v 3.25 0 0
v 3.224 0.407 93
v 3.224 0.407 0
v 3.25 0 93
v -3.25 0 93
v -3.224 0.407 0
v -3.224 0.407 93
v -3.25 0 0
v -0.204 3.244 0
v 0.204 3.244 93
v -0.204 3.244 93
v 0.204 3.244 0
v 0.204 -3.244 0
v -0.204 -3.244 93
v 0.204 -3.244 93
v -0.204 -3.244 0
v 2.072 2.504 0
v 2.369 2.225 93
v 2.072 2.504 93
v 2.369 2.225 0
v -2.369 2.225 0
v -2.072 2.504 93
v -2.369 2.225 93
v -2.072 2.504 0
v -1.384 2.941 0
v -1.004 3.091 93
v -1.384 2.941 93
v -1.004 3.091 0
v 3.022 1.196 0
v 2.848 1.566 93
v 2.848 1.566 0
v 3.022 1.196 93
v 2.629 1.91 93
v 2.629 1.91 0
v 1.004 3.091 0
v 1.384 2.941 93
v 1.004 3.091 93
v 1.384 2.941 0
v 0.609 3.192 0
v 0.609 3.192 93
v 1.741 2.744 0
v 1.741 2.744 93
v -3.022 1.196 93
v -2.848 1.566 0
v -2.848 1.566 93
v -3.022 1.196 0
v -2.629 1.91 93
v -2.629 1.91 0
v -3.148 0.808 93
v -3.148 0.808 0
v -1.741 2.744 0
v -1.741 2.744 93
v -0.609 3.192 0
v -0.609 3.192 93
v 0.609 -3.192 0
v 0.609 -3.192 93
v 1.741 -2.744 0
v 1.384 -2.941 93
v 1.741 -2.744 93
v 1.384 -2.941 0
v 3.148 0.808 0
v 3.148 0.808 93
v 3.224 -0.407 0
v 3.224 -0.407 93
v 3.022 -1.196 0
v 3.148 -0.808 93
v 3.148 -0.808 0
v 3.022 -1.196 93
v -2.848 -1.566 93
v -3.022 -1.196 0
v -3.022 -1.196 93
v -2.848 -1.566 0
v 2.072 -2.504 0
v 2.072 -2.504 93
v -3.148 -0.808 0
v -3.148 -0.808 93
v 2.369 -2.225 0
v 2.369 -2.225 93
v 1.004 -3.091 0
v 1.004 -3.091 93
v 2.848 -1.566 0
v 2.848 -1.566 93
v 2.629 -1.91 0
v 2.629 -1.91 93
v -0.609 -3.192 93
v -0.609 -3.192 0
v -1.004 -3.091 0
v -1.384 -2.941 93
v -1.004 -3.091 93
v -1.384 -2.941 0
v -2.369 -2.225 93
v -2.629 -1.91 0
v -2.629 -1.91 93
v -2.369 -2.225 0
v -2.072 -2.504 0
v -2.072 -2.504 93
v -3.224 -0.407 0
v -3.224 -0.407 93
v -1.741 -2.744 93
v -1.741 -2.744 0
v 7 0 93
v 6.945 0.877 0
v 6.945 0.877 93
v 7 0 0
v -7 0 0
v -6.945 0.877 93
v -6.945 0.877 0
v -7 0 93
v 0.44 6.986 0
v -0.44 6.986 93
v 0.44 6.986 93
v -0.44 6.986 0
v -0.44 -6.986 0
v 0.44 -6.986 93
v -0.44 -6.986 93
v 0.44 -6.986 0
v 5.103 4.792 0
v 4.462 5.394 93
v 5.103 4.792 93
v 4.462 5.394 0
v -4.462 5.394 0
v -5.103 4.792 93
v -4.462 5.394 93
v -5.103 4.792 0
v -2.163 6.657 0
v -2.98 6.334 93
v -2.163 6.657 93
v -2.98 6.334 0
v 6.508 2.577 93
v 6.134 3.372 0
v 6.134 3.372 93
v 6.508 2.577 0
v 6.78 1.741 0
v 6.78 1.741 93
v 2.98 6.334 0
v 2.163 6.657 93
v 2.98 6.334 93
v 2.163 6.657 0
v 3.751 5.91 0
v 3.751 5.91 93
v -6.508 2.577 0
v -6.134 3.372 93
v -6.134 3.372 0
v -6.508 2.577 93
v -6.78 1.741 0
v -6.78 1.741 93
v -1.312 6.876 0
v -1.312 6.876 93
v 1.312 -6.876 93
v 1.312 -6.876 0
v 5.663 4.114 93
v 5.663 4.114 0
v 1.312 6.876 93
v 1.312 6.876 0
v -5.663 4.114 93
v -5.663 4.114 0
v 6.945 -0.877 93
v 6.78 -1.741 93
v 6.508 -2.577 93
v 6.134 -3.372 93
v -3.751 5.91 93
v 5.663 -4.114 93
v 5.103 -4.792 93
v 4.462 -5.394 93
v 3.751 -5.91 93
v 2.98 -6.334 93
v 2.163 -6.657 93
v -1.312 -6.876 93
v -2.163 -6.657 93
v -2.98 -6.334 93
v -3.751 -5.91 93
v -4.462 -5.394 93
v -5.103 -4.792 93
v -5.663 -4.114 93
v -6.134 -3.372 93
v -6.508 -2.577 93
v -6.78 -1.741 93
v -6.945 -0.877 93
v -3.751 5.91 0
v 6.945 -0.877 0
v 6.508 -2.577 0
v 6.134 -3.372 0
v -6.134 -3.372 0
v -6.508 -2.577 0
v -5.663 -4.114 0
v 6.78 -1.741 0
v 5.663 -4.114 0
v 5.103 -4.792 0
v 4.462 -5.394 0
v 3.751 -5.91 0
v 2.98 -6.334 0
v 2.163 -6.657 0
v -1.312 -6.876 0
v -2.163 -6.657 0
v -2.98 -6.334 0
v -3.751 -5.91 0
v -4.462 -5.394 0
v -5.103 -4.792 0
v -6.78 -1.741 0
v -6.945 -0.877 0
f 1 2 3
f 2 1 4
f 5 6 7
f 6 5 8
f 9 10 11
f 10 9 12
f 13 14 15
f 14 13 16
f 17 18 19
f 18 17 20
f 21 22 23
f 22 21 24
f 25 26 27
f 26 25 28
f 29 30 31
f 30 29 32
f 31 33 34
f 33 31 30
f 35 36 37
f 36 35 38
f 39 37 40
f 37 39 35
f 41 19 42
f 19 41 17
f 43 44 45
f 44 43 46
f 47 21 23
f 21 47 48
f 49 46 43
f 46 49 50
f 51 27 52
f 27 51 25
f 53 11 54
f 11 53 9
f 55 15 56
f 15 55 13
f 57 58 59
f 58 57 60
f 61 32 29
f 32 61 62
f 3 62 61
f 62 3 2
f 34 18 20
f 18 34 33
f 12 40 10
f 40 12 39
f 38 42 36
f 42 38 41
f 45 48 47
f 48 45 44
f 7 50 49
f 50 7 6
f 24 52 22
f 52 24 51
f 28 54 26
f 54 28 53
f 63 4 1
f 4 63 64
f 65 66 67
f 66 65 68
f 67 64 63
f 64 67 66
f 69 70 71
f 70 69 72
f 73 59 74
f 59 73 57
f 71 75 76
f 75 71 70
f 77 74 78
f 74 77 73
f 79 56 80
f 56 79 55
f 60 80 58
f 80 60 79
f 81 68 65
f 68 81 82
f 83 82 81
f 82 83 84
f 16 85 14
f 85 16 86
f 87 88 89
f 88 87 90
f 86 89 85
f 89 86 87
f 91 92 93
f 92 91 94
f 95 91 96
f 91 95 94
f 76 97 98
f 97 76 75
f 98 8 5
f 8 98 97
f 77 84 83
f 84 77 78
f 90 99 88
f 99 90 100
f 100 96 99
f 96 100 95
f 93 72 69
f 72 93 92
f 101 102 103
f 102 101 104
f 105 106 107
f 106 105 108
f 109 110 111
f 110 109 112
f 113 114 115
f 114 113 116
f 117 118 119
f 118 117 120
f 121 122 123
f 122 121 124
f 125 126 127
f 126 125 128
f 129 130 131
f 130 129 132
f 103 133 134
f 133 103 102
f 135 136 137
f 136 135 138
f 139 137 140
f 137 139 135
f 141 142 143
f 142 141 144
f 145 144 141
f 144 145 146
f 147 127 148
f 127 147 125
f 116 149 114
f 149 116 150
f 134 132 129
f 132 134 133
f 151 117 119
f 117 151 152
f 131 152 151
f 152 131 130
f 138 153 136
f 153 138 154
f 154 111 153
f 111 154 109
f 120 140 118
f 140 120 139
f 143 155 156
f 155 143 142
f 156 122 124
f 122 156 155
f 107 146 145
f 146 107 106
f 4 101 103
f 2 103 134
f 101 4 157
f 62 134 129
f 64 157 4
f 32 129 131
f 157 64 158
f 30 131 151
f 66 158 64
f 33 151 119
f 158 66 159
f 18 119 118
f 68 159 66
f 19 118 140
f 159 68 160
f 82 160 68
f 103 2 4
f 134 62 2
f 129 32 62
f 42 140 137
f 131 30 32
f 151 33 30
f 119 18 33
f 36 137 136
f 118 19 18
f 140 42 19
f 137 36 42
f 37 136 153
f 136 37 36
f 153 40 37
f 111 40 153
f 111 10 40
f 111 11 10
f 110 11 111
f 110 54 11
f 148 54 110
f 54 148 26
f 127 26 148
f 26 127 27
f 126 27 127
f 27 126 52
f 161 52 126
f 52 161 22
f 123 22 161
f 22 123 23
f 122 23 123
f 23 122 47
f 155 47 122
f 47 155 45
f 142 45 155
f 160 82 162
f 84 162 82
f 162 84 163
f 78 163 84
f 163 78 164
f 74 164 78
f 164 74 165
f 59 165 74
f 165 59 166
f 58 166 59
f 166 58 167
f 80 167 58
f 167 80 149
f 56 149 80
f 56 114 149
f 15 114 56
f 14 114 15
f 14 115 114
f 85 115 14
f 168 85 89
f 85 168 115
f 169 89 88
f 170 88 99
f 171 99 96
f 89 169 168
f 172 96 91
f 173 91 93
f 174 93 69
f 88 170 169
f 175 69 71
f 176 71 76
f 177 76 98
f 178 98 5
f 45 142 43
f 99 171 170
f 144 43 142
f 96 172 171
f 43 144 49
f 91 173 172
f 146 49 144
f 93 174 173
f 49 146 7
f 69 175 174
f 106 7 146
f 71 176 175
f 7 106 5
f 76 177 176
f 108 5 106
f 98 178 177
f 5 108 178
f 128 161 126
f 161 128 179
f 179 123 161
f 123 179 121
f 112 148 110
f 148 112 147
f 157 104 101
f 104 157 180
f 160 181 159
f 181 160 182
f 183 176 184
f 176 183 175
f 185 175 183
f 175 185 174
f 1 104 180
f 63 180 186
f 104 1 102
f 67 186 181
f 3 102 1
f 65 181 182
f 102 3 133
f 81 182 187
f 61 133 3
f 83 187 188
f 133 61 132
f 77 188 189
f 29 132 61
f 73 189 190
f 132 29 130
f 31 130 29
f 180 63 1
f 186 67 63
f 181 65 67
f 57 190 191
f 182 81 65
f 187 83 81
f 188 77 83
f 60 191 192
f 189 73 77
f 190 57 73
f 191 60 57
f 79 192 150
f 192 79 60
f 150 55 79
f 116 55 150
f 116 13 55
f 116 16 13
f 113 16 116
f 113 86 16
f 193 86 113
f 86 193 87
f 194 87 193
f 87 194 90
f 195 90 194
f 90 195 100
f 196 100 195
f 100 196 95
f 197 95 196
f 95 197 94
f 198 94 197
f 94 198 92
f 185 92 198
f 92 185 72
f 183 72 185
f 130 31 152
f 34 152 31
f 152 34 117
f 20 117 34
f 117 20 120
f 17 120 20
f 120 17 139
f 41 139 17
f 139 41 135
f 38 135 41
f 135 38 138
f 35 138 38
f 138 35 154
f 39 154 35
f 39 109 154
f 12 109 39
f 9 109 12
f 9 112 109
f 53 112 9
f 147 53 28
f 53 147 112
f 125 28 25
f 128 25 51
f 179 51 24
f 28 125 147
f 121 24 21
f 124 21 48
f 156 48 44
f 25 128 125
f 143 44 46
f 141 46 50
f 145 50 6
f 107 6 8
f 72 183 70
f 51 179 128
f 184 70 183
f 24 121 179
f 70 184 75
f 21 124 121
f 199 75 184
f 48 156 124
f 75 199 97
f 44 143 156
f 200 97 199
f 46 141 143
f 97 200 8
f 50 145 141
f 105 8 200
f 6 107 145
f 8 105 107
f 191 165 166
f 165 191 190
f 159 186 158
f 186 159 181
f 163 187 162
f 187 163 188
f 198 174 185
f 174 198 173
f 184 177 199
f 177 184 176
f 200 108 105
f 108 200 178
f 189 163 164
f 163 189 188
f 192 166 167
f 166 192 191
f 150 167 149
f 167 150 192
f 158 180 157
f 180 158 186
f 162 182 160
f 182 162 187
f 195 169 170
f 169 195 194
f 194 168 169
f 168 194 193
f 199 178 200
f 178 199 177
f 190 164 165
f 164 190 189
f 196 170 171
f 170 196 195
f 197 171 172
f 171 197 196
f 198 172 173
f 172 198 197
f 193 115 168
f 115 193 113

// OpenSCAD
$fn = 50;


difference() {
	union() {
		cylinder(h = 93, r = 7.0000000000);
	}
	union() {
		translate(v = [0, 0, -100]) {
			cylinder(h = 200, r = 3.2500000000);
		}
		translate(v = [0, 0, -100]) {
			cylinder(h = 200, r = 1.8000000000);
		}
	}
}
